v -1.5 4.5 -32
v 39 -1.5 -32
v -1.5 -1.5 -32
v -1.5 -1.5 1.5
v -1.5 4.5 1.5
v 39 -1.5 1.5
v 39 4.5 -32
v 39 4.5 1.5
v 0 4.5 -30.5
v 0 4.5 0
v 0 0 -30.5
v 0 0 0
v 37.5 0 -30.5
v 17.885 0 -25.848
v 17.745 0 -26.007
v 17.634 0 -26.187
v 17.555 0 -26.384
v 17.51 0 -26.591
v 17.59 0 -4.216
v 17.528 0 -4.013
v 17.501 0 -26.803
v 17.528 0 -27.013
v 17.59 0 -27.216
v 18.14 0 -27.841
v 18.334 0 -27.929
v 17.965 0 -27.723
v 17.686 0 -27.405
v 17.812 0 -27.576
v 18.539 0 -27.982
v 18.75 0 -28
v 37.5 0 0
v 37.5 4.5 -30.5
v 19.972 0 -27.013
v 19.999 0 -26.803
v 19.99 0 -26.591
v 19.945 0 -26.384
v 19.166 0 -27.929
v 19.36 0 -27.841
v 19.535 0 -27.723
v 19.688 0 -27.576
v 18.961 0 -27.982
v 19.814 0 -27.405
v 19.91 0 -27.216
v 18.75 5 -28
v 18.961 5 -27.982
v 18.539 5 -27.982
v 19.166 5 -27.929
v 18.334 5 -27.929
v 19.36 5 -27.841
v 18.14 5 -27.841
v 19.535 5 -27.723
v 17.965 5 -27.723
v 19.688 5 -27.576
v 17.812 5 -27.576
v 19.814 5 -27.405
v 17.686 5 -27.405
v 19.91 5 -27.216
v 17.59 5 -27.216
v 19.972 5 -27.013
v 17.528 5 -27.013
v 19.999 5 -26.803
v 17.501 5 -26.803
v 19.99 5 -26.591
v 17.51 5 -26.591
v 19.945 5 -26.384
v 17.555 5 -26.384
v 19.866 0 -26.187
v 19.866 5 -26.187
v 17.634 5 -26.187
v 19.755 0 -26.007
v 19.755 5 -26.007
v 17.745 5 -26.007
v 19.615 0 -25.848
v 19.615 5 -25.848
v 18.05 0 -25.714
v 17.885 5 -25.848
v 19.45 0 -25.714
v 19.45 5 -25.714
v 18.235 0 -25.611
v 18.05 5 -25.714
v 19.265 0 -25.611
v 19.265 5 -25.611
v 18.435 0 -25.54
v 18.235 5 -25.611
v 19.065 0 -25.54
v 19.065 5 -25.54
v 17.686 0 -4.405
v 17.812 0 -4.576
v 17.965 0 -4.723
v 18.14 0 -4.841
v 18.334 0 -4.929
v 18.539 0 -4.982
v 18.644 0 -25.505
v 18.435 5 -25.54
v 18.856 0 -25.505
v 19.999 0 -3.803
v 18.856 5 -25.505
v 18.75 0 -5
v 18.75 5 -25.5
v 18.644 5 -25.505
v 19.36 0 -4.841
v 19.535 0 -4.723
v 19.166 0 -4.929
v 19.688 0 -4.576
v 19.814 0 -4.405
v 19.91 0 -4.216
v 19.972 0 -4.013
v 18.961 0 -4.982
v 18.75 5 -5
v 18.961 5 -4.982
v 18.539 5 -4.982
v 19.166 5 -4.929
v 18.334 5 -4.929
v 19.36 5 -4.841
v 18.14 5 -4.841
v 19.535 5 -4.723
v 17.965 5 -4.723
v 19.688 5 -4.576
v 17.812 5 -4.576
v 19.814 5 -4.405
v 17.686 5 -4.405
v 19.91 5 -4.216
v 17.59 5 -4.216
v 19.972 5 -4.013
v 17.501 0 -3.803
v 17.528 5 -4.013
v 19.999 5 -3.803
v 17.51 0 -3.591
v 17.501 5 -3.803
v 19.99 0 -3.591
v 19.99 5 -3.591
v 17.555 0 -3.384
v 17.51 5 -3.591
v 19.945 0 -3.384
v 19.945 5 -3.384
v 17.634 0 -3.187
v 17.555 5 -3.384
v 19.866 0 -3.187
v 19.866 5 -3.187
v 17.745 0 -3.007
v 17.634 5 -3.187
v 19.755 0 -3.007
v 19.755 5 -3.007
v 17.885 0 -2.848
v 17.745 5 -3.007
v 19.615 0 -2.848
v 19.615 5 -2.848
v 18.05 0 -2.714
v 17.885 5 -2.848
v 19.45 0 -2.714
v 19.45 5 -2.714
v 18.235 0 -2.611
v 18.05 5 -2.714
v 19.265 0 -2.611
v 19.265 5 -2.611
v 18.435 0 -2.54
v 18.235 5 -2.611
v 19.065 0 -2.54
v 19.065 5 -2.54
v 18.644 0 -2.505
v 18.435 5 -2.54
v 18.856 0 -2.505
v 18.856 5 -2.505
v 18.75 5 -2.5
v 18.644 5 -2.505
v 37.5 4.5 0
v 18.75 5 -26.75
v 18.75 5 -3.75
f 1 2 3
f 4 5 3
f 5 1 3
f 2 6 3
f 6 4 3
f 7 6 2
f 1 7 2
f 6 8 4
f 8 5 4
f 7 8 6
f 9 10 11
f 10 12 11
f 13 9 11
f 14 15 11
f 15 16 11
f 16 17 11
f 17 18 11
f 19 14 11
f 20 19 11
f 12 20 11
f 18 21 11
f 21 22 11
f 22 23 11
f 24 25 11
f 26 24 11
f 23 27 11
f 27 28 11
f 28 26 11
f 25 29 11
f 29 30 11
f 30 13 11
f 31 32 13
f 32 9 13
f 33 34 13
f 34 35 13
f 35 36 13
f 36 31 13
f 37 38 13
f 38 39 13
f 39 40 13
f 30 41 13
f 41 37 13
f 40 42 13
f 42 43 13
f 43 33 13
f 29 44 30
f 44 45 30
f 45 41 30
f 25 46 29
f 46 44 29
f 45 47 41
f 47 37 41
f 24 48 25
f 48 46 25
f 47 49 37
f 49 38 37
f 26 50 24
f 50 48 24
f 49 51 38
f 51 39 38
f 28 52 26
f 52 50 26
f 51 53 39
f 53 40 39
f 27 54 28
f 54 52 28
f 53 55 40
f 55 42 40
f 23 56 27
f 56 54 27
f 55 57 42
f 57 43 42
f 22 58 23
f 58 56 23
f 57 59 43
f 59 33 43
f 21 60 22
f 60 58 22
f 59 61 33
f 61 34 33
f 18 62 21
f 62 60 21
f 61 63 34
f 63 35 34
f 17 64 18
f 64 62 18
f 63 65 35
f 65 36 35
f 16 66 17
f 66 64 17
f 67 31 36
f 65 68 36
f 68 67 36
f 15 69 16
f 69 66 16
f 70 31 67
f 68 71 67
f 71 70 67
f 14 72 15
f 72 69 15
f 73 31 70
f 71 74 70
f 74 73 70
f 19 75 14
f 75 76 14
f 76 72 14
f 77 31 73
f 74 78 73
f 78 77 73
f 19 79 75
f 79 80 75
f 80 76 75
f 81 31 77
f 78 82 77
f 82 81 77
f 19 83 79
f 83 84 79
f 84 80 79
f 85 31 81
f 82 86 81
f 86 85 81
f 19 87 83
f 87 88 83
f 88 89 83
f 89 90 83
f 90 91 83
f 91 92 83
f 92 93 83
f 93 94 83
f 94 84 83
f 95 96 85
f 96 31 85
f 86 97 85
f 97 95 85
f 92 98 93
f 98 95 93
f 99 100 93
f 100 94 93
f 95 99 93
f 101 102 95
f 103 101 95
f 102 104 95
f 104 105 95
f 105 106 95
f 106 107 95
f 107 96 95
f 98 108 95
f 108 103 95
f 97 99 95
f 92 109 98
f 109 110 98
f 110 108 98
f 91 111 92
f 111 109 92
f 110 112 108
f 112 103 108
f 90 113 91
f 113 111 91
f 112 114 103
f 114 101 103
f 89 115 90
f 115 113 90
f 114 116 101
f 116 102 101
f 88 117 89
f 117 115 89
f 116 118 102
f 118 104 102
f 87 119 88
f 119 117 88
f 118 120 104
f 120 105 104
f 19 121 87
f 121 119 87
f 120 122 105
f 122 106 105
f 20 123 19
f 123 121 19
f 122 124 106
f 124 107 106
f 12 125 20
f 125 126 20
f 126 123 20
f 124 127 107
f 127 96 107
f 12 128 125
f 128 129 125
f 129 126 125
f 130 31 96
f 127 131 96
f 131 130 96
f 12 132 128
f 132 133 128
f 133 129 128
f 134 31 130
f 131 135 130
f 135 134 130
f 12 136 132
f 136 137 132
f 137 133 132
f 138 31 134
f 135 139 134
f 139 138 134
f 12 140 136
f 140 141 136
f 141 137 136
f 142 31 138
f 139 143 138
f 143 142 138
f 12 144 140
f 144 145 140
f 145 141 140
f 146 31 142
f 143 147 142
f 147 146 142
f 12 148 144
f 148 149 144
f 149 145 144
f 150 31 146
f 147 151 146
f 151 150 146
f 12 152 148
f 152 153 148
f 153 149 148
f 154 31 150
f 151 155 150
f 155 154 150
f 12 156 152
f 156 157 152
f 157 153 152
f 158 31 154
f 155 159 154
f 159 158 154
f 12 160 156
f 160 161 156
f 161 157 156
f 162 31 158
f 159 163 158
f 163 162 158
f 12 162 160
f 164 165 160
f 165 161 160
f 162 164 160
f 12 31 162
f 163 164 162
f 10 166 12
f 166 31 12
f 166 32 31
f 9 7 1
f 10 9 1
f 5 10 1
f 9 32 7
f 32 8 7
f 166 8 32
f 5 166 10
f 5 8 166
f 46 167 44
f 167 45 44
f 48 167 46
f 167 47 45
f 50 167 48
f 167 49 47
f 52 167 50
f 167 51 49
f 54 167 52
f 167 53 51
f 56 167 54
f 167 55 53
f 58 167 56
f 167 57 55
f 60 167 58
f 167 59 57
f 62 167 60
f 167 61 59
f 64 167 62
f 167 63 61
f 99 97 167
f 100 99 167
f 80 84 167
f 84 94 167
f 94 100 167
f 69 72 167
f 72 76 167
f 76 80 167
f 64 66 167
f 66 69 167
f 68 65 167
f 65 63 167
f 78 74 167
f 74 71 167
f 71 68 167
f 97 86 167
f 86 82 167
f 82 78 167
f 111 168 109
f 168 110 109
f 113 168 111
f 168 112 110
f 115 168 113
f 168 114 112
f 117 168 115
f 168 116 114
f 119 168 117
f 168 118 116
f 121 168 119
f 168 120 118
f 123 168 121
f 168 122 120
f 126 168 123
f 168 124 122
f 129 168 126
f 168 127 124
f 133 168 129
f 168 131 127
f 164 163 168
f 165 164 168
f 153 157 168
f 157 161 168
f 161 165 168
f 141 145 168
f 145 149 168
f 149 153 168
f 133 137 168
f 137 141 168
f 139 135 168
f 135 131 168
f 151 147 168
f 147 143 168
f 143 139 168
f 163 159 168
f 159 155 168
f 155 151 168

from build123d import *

# Parameters (mm, degrees)
ESQUISSE1_W        = 40.5
ESQUISSE1_H        = 33.5
ESQUISSE1_W_2      = 37.5
ESQUISSE1_H_2      = 30.5
BOSS_EXTRU_1_DEPTH = 4.5
ESQUISSE2_W        = 40.5
ESQUISSE2_H        = 33.5
BOSS_EXTRU_2_DEPTH = 1.5
ESQUISSE3_R        = 1.25
BOSS_EXTRU_3_DEPTH = 5


with BuildPart() as part:
    # Esquisse1 → Boss.-Extru.1 (new body)
    with BuildSketch(Plane(origin=(0, 0, 0), x_dir=(1, 0, 0), z_dir=(0, 1, 0))):
        with Locations((18.75, 15.25)):
            Rectangle(ESQUISSE1_W, ESQUISSE1_H)
        with Locations((18.75, 15.25)):
            Rectangle(ESQUISSE1_W_2, ESQUISSE1_H_2, mode=Mode.SUBTRACT)
    extrude(amount=BOSS_EXTRU_1_DEPTH)

    # Esquisse2 → Boss.-Extru.2 (add)
    with BuildSketch(Plane.XZ):
        with Locations((18.75, -15.25)):
            Rectangle(ESQUISSE2_W, ESQUISSE2_H)
    extrude(amount=BOSS_EXTRU_2_DEPTH)

    # Esquisse3 → Boss.-Extru.3 (add)
    with BuildSketch(Plane(origin=(0, 0, 0), x_dir=(1, 0, 0), z_dir=(0, 1, 0))):
        with Locations(Location((18.75, 26.75, 0), (0, 0, 90))):
            Circle(ESQUISSE3_R)
        with Locations(Location((18.75, 3.75, 0), (0, 0, 90))):
            Circle(ESQUISSE3_R)
    extrude(amount=BOSS_EXTRU_3_DEPTH)


solid = part.part
